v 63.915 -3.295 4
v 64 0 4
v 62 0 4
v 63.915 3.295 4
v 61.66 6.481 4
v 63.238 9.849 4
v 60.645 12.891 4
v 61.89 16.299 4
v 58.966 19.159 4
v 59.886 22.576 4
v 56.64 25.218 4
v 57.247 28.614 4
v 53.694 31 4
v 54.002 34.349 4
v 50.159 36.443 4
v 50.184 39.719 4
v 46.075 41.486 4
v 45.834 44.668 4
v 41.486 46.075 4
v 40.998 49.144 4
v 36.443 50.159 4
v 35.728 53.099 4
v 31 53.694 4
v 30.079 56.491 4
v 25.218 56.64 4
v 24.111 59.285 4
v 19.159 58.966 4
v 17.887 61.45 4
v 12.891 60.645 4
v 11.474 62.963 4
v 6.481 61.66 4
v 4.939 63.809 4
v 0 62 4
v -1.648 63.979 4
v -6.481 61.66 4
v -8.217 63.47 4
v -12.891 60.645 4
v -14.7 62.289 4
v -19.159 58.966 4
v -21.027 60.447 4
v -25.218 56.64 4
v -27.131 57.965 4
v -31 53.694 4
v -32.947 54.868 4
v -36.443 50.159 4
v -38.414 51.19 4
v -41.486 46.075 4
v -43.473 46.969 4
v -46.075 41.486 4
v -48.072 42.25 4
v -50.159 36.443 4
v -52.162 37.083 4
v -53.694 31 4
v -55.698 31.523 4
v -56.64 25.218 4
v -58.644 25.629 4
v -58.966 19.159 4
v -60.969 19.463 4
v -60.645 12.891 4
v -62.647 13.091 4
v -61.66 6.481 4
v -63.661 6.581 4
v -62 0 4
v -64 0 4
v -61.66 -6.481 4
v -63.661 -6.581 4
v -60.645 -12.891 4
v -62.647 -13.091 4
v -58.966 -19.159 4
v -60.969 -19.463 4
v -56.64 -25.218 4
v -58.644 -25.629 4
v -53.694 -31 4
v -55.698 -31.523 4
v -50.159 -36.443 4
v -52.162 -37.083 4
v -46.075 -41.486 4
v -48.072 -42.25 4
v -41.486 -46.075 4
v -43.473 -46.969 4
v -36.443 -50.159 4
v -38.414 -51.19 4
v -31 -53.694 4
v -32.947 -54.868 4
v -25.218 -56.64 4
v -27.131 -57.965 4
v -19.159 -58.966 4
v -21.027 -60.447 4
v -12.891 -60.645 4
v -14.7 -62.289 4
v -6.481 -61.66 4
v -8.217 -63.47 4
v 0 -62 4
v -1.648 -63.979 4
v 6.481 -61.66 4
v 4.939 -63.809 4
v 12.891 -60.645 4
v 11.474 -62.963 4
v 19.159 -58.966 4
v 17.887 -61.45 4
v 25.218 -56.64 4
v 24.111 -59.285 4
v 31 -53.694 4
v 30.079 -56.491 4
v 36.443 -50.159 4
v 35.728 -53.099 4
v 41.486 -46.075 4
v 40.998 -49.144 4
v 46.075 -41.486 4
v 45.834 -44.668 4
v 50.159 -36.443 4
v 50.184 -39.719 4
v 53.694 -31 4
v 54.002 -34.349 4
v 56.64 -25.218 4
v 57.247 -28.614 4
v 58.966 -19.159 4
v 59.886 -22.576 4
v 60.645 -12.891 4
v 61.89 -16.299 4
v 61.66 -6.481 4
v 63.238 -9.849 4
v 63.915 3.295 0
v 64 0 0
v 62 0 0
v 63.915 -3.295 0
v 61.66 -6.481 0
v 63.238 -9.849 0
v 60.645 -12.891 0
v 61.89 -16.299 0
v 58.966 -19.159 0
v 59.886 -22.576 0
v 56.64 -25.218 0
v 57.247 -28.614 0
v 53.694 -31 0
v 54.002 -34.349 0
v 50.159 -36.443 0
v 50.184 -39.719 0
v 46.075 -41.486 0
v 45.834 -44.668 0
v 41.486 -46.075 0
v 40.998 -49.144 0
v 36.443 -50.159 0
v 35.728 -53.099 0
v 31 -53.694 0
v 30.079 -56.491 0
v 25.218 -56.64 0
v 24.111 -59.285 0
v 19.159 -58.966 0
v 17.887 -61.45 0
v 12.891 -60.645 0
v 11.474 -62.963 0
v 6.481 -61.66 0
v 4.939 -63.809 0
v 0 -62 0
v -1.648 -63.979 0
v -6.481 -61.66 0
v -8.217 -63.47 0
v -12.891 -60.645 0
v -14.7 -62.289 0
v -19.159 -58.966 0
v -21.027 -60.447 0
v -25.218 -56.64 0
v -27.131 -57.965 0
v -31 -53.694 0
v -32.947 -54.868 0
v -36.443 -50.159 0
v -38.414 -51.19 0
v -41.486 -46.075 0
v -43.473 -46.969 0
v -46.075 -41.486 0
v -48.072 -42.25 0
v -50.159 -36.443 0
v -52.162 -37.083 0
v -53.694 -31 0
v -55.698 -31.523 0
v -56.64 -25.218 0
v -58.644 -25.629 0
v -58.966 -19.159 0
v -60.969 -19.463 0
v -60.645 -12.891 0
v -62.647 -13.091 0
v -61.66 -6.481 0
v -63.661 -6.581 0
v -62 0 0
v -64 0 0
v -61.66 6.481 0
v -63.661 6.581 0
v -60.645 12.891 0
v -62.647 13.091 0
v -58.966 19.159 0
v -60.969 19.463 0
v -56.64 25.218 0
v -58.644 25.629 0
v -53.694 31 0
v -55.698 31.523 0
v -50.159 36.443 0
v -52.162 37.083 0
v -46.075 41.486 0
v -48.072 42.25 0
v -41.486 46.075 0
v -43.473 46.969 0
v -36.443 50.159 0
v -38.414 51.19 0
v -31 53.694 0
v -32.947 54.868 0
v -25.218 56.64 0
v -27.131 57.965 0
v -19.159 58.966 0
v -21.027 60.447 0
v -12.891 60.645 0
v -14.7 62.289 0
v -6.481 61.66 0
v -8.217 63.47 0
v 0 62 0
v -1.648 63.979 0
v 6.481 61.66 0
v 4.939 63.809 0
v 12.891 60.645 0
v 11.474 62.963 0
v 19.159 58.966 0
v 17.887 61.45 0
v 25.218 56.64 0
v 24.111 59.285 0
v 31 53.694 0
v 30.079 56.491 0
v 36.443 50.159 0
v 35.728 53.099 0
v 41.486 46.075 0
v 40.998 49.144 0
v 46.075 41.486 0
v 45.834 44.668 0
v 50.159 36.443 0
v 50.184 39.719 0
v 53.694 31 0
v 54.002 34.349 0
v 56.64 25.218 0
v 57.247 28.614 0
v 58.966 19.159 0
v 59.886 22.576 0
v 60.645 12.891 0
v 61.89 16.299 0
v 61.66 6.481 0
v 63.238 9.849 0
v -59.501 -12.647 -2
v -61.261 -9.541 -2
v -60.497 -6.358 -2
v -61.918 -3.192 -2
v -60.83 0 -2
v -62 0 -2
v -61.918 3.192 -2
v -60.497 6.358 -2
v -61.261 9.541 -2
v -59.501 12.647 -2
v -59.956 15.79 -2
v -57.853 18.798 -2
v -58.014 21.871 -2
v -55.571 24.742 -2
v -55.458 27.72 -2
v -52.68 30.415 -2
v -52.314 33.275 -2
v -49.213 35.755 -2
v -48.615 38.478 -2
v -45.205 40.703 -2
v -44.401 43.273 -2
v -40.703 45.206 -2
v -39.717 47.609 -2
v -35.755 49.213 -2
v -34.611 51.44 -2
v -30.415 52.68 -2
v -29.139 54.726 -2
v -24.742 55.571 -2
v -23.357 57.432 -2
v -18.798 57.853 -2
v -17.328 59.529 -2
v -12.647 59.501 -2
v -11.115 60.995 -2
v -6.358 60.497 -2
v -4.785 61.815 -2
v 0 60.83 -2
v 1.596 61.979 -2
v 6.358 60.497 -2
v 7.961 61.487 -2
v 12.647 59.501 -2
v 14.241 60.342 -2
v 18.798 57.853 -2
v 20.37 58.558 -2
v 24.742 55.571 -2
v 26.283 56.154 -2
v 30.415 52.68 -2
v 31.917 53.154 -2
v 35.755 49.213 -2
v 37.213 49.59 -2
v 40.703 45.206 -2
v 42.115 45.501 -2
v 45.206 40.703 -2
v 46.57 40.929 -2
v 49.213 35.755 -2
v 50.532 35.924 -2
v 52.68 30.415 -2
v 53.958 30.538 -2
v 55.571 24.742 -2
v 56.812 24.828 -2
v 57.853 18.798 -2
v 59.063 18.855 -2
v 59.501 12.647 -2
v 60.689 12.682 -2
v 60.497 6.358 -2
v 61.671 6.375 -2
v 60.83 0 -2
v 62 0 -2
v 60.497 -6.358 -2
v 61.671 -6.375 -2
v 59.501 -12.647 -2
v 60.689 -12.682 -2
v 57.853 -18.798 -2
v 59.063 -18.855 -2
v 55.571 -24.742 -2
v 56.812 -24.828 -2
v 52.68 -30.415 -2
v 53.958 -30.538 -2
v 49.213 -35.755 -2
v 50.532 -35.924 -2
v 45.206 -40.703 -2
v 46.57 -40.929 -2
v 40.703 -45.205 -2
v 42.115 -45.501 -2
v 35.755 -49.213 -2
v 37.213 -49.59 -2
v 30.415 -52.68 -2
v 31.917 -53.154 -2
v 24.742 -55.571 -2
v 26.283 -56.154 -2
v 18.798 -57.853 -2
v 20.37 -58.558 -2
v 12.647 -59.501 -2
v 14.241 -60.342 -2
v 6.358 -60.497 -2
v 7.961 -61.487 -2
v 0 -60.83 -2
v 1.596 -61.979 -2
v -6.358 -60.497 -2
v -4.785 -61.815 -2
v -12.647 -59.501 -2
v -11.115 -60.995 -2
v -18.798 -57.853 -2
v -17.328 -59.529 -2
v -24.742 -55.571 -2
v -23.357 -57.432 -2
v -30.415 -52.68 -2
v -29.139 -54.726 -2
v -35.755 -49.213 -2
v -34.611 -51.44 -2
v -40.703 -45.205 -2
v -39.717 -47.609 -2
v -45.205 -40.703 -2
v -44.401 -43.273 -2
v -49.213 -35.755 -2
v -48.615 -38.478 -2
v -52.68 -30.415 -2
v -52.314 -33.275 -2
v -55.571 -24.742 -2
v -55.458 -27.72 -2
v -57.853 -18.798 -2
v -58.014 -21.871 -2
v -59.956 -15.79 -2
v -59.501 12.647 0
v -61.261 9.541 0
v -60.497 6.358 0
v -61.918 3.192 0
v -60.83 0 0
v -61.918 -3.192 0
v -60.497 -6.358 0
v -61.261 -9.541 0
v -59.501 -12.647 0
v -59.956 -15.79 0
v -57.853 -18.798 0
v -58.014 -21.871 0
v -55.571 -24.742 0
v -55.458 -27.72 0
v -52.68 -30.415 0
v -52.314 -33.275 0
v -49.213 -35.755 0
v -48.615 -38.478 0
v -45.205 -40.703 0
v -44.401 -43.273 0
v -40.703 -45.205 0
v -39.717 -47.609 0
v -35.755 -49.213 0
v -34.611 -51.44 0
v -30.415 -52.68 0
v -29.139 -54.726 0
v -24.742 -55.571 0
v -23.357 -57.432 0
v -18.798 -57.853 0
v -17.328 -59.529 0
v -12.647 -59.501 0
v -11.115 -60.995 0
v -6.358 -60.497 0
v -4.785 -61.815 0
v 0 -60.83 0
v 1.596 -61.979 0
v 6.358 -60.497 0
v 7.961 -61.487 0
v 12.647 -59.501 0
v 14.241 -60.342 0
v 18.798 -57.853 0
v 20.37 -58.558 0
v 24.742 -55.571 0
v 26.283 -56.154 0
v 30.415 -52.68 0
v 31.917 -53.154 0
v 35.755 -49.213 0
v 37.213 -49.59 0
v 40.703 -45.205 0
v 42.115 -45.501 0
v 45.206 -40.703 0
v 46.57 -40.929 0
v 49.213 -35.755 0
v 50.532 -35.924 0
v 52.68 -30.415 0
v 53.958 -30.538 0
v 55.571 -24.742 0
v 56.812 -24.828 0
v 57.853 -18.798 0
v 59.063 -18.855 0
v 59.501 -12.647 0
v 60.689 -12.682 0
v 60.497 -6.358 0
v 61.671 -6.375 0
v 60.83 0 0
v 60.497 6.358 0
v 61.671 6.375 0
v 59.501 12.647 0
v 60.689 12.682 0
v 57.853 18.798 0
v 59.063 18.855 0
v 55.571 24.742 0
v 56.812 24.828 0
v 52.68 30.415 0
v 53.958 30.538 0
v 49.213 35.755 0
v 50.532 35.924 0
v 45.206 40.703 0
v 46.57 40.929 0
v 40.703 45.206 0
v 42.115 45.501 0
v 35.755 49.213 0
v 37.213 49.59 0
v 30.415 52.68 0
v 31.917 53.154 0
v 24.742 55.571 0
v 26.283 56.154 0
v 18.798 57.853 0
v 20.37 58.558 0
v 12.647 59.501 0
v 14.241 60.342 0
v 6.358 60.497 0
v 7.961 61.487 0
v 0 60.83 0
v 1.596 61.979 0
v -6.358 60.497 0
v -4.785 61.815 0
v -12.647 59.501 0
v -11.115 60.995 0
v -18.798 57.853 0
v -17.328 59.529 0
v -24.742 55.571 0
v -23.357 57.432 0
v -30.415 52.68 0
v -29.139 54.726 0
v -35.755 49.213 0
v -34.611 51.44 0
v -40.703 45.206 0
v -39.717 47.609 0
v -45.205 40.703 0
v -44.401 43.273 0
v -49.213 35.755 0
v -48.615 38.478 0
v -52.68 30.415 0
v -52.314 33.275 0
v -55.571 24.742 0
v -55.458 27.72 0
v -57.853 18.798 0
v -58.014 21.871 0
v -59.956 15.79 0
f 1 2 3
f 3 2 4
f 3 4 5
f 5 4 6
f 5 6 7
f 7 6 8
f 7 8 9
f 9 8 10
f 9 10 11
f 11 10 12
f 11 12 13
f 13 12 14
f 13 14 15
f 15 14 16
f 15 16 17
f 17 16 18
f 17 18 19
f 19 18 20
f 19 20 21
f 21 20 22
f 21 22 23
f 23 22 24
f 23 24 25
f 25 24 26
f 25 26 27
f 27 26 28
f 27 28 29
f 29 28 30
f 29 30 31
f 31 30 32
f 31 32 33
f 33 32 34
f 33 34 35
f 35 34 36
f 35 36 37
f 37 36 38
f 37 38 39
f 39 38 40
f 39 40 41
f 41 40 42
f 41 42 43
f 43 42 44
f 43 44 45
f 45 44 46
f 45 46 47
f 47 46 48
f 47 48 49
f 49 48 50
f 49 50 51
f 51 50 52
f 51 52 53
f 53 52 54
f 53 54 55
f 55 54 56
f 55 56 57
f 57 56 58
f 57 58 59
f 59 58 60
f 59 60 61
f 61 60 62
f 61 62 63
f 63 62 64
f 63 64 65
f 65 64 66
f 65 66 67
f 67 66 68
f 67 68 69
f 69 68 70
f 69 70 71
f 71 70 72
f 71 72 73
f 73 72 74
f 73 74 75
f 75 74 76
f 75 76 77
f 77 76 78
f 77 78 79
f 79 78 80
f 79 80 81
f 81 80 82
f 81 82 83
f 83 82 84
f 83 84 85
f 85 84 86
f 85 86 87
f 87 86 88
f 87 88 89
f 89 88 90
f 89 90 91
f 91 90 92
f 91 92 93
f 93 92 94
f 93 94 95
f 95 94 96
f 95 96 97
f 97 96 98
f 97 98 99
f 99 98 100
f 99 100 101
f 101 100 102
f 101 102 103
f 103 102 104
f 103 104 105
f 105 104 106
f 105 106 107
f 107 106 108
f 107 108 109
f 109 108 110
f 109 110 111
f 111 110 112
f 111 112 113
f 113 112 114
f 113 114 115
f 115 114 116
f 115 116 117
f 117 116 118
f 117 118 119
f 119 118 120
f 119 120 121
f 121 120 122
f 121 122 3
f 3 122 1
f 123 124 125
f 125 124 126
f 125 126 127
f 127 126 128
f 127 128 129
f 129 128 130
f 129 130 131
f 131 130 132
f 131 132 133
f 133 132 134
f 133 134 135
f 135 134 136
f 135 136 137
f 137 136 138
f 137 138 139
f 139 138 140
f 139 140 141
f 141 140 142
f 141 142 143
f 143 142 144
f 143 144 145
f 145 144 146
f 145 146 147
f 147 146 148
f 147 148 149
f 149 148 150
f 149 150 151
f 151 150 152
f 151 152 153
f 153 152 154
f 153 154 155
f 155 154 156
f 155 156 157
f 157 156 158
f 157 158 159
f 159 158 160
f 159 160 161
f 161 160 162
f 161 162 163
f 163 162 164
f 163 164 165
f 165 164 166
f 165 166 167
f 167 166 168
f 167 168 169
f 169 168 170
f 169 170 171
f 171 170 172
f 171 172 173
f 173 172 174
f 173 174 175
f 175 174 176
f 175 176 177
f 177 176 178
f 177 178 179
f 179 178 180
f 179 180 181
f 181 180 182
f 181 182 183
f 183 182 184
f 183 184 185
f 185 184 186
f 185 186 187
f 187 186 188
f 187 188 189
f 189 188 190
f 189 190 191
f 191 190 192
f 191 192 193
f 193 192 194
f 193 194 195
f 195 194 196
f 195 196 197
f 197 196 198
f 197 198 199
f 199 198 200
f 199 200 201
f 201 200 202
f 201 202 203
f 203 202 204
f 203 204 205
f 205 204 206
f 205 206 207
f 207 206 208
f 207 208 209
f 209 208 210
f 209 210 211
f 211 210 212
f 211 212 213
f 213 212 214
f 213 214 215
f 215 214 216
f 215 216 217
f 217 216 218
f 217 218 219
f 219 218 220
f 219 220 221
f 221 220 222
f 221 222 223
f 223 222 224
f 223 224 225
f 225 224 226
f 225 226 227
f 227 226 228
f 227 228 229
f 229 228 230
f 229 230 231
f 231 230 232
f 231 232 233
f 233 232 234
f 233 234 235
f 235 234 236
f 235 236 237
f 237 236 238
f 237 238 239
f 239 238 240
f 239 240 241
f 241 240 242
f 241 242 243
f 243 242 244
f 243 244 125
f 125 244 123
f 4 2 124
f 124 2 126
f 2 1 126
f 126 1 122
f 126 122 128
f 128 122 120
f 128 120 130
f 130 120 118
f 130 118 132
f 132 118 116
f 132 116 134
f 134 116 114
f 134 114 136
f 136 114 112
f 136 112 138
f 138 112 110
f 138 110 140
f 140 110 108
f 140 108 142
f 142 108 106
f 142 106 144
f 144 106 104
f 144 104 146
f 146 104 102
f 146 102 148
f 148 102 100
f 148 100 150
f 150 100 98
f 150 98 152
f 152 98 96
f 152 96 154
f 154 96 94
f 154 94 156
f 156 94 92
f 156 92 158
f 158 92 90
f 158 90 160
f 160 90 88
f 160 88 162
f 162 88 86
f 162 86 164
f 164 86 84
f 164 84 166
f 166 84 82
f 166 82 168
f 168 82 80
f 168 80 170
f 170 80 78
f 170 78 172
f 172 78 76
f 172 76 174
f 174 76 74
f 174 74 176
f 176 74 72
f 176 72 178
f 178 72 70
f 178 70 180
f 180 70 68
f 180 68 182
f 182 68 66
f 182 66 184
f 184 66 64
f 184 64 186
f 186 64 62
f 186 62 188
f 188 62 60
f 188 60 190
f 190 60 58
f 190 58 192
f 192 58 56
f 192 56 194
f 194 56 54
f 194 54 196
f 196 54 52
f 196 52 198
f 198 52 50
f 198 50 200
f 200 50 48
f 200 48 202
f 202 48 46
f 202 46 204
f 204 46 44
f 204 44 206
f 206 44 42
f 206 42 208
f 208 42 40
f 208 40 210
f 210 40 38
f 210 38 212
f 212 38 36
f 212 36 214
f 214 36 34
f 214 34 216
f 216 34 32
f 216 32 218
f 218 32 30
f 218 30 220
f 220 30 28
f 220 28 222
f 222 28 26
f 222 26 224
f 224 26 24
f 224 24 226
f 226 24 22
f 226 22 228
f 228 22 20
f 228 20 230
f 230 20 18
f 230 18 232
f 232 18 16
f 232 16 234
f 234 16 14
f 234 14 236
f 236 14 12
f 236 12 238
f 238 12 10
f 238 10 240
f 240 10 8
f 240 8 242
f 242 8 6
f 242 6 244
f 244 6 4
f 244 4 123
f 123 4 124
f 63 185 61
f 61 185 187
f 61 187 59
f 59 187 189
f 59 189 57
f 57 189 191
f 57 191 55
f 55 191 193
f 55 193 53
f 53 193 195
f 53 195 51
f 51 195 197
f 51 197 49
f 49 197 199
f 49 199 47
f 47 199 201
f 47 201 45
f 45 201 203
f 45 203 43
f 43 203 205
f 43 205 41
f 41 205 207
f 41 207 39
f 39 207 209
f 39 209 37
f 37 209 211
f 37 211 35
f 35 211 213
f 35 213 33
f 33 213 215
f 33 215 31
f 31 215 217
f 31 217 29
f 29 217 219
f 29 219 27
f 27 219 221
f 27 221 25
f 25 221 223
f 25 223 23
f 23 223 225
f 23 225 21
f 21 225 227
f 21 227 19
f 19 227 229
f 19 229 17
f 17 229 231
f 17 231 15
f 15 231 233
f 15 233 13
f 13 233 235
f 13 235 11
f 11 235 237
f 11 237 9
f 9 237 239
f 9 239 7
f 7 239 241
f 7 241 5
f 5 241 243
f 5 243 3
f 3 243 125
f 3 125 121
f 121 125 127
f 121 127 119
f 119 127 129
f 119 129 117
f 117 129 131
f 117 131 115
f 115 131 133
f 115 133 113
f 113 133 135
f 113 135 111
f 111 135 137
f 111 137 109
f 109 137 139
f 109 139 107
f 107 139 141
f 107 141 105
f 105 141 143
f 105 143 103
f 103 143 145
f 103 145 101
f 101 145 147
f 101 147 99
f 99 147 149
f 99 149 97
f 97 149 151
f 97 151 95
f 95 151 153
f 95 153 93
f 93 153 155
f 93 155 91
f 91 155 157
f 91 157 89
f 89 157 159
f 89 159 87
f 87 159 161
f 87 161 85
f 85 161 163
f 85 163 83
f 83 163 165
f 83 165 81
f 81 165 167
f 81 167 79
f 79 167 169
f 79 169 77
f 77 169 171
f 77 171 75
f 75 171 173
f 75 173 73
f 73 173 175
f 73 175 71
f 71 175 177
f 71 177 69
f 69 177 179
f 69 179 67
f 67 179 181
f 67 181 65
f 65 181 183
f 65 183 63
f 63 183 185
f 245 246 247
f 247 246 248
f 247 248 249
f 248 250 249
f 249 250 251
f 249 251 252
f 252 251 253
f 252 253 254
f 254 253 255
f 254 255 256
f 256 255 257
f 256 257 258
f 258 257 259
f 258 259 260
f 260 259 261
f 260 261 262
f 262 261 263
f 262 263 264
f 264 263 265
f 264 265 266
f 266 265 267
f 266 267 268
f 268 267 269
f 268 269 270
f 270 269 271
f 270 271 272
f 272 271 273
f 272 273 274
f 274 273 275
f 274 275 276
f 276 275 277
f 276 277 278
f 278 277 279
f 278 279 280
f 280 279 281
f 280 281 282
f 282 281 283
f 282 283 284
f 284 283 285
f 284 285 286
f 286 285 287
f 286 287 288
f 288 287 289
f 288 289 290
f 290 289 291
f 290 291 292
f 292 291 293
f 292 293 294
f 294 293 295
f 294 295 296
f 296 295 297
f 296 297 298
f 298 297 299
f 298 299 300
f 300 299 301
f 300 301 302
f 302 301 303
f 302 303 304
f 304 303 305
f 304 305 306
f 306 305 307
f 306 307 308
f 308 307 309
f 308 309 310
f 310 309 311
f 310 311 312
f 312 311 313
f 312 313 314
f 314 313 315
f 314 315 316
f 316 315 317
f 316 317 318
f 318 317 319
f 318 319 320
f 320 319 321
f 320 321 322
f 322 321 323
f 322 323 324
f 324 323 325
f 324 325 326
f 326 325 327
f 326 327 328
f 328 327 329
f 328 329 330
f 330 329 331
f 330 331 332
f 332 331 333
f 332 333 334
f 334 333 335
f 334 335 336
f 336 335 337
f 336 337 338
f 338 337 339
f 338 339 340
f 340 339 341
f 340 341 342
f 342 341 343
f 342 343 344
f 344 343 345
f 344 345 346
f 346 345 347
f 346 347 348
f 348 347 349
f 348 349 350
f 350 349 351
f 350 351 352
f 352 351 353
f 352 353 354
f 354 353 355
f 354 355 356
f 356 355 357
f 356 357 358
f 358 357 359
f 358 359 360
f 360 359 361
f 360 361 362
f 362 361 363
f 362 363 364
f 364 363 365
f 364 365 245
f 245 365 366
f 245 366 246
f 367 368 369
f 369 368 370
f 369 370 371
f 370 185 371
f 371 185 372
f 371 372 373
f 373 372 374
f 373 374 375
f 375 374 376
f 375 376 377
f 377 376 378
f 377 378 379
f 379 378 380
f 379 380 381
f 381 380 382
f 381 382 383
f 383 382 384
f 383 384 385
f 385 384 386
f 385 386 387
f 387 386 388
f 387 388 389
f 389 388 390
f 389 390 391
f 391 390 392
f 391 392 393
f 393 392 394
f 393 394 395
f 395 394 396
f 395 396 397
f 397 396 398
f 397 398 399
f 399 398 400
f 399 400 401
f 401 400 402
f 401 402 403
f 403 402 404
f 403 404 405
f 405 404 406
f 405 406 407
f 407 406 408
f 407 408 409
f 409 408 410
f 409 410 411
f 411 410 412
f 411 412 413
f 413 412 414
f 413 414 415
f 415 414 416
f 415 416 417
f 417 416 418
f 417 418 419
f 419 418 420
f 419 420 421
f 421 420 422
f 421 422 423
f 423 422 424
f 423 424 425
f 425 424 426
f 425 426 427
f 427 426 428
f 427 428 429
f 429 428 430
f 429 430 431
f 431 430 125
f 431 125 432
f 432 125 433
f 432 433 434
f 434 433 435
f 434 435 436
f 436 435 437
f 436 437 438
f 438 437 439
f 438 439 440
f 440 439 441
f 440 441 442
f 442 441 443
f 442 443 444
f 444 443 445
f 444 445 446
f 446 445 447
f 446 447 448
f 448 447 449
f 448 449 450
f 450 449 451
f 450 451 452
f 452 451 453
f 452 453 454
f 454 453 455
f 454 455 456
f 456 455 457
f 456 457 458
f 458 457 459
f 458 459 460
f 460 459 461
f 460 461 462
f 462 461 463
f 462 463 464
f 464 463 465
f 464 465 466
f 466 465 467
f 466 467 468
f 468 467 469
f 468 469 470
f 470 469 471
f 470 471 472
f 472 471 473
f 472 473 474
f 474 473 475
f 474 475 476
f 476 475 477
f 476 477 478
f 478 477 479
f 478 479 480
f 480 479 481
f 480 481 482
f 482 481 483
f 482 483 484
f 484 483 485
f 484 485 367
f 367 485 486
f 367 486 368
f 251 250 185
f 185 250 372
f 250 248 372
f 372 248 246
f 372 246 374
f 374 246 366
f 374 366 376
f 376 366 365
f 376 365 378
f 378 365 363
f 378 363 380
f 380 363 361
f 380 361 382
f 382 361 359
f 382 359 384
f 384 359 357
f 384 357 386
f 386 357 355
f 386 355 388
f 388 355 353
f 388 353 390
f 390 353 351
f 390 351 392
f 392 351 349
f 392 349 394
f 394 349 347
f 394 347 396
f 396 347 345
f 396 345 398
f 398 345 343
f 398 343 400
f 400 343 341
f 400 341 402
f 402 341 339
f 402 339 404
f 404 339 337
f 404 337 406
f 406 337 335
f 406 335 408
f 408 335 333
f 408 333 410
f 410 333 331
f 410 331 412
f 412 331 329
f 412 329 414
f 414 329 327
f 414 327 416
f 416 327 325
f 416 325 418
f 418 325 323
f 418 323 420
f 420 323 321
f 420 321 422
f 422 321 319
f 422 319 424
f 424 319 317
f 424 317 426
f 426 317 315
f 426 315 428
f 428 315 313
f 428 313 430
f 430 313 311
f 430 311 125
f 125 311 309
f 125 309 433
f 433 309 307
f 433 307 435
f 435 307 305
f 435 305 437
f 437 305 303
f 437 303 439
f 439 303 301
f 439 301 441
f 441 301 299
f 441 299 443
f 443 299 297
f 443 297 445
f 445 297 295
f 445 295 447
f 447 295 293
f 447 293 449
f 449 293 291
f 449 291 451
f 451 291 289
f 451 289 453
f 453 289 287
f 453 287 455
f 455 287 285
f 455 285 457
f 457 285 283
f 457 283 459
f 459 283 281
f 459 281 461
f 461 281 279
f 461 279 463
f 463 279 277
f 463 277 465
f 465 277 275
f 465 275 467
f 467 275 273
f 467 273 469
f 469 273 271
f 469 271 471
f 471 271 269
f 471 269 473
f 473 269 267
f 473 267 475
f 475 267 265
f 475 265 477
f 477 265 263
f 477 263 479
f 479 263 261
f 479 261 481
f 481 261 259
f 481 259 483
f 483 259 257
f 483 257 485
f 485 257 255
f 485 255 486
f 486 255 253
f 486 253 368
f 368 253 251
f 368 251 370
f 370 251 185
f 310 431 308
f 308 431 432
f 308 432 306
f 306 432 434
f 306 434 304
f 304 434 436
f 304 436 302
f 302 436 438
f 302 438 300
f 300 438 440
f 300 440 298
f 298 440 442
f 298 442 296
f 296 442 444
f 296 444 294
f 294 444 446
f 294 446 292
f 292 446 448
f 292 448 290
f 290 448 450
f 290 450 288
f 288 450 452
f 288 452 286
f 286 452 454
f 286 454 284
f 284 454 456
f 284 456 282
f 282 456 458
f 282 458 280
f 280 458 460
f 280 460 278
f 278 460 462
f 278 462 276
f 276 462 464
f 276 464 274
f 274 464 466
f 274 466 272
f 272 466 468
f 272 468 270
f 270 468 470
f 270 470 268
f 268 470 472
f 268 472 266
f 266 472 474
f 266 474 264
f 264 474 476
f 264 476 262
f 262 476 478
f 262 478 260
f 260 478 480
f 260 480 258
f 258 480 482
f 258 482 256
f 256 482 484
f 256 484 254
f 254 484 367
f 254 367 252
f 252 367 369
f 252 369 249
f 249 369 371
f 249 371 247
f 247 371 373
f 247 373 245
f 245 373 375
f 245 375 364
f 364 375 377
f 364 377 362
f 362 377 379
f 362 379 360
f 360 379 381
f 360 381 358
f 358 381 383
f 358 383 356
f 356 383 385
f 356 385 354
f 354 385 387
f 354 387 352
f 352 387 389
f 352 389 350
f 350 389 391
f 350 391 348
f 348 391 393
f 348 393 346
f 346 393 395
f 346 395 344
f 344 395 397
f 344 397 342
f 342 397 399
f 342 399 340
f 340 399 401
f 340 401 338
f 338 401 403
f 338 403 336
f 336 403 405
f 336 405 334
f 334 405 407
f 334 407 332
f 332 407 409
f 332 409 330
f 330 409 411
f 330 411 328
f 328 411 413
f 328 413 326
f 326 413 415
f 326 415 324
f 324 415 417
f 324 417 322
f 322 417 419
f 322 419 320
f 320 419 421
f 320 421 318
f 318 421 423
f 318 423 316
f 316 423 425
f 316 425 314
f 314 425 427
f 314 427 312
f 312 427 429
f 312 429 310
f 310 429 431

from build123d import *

# Parameters (mm, degrees)
SKETCH1_R           = 64
SKETCH1_R_2         = 62
BOSS_EXTRUDE1_DEPTH = 4
BOSS_EXTRUDE2_START = 2
SKETCH2_R           = 62
SKETCH2_R_2         = 60.83
BOSS_EXTRUDE2_DEPTH = 2


with BuildPart() as part:
    # Sketch1 → Boss-Extrude1 (new body)
    with BuildSketch(Plane.XY):
        Circle(SKETCH1_R)
        Circle(SKETCH1_R_2, mode=Mode.SUBTRACT)
    extrude(amount=BOSS_EXTRUDE1_DEPTH)


with BuildPart() as body_2:
    # Sketch2 → Boss-Extrude2 (new body)
    with BuildSketch(Plane(origin=(0, 0, 0), x_dir=(-1, 0, 0), z_dir=(0, 0, -1)).offset(BOSS_EXTRUDE2_START)):
        Circle(SKETCH2_R)
        Circle(SKETCH2_R_2, mode=Mode.SUBTRACT)
    extrude(amount=-BOSS_EXTRUDE2_DEPTH)


solid = Compound([part.part, body_2.part])
